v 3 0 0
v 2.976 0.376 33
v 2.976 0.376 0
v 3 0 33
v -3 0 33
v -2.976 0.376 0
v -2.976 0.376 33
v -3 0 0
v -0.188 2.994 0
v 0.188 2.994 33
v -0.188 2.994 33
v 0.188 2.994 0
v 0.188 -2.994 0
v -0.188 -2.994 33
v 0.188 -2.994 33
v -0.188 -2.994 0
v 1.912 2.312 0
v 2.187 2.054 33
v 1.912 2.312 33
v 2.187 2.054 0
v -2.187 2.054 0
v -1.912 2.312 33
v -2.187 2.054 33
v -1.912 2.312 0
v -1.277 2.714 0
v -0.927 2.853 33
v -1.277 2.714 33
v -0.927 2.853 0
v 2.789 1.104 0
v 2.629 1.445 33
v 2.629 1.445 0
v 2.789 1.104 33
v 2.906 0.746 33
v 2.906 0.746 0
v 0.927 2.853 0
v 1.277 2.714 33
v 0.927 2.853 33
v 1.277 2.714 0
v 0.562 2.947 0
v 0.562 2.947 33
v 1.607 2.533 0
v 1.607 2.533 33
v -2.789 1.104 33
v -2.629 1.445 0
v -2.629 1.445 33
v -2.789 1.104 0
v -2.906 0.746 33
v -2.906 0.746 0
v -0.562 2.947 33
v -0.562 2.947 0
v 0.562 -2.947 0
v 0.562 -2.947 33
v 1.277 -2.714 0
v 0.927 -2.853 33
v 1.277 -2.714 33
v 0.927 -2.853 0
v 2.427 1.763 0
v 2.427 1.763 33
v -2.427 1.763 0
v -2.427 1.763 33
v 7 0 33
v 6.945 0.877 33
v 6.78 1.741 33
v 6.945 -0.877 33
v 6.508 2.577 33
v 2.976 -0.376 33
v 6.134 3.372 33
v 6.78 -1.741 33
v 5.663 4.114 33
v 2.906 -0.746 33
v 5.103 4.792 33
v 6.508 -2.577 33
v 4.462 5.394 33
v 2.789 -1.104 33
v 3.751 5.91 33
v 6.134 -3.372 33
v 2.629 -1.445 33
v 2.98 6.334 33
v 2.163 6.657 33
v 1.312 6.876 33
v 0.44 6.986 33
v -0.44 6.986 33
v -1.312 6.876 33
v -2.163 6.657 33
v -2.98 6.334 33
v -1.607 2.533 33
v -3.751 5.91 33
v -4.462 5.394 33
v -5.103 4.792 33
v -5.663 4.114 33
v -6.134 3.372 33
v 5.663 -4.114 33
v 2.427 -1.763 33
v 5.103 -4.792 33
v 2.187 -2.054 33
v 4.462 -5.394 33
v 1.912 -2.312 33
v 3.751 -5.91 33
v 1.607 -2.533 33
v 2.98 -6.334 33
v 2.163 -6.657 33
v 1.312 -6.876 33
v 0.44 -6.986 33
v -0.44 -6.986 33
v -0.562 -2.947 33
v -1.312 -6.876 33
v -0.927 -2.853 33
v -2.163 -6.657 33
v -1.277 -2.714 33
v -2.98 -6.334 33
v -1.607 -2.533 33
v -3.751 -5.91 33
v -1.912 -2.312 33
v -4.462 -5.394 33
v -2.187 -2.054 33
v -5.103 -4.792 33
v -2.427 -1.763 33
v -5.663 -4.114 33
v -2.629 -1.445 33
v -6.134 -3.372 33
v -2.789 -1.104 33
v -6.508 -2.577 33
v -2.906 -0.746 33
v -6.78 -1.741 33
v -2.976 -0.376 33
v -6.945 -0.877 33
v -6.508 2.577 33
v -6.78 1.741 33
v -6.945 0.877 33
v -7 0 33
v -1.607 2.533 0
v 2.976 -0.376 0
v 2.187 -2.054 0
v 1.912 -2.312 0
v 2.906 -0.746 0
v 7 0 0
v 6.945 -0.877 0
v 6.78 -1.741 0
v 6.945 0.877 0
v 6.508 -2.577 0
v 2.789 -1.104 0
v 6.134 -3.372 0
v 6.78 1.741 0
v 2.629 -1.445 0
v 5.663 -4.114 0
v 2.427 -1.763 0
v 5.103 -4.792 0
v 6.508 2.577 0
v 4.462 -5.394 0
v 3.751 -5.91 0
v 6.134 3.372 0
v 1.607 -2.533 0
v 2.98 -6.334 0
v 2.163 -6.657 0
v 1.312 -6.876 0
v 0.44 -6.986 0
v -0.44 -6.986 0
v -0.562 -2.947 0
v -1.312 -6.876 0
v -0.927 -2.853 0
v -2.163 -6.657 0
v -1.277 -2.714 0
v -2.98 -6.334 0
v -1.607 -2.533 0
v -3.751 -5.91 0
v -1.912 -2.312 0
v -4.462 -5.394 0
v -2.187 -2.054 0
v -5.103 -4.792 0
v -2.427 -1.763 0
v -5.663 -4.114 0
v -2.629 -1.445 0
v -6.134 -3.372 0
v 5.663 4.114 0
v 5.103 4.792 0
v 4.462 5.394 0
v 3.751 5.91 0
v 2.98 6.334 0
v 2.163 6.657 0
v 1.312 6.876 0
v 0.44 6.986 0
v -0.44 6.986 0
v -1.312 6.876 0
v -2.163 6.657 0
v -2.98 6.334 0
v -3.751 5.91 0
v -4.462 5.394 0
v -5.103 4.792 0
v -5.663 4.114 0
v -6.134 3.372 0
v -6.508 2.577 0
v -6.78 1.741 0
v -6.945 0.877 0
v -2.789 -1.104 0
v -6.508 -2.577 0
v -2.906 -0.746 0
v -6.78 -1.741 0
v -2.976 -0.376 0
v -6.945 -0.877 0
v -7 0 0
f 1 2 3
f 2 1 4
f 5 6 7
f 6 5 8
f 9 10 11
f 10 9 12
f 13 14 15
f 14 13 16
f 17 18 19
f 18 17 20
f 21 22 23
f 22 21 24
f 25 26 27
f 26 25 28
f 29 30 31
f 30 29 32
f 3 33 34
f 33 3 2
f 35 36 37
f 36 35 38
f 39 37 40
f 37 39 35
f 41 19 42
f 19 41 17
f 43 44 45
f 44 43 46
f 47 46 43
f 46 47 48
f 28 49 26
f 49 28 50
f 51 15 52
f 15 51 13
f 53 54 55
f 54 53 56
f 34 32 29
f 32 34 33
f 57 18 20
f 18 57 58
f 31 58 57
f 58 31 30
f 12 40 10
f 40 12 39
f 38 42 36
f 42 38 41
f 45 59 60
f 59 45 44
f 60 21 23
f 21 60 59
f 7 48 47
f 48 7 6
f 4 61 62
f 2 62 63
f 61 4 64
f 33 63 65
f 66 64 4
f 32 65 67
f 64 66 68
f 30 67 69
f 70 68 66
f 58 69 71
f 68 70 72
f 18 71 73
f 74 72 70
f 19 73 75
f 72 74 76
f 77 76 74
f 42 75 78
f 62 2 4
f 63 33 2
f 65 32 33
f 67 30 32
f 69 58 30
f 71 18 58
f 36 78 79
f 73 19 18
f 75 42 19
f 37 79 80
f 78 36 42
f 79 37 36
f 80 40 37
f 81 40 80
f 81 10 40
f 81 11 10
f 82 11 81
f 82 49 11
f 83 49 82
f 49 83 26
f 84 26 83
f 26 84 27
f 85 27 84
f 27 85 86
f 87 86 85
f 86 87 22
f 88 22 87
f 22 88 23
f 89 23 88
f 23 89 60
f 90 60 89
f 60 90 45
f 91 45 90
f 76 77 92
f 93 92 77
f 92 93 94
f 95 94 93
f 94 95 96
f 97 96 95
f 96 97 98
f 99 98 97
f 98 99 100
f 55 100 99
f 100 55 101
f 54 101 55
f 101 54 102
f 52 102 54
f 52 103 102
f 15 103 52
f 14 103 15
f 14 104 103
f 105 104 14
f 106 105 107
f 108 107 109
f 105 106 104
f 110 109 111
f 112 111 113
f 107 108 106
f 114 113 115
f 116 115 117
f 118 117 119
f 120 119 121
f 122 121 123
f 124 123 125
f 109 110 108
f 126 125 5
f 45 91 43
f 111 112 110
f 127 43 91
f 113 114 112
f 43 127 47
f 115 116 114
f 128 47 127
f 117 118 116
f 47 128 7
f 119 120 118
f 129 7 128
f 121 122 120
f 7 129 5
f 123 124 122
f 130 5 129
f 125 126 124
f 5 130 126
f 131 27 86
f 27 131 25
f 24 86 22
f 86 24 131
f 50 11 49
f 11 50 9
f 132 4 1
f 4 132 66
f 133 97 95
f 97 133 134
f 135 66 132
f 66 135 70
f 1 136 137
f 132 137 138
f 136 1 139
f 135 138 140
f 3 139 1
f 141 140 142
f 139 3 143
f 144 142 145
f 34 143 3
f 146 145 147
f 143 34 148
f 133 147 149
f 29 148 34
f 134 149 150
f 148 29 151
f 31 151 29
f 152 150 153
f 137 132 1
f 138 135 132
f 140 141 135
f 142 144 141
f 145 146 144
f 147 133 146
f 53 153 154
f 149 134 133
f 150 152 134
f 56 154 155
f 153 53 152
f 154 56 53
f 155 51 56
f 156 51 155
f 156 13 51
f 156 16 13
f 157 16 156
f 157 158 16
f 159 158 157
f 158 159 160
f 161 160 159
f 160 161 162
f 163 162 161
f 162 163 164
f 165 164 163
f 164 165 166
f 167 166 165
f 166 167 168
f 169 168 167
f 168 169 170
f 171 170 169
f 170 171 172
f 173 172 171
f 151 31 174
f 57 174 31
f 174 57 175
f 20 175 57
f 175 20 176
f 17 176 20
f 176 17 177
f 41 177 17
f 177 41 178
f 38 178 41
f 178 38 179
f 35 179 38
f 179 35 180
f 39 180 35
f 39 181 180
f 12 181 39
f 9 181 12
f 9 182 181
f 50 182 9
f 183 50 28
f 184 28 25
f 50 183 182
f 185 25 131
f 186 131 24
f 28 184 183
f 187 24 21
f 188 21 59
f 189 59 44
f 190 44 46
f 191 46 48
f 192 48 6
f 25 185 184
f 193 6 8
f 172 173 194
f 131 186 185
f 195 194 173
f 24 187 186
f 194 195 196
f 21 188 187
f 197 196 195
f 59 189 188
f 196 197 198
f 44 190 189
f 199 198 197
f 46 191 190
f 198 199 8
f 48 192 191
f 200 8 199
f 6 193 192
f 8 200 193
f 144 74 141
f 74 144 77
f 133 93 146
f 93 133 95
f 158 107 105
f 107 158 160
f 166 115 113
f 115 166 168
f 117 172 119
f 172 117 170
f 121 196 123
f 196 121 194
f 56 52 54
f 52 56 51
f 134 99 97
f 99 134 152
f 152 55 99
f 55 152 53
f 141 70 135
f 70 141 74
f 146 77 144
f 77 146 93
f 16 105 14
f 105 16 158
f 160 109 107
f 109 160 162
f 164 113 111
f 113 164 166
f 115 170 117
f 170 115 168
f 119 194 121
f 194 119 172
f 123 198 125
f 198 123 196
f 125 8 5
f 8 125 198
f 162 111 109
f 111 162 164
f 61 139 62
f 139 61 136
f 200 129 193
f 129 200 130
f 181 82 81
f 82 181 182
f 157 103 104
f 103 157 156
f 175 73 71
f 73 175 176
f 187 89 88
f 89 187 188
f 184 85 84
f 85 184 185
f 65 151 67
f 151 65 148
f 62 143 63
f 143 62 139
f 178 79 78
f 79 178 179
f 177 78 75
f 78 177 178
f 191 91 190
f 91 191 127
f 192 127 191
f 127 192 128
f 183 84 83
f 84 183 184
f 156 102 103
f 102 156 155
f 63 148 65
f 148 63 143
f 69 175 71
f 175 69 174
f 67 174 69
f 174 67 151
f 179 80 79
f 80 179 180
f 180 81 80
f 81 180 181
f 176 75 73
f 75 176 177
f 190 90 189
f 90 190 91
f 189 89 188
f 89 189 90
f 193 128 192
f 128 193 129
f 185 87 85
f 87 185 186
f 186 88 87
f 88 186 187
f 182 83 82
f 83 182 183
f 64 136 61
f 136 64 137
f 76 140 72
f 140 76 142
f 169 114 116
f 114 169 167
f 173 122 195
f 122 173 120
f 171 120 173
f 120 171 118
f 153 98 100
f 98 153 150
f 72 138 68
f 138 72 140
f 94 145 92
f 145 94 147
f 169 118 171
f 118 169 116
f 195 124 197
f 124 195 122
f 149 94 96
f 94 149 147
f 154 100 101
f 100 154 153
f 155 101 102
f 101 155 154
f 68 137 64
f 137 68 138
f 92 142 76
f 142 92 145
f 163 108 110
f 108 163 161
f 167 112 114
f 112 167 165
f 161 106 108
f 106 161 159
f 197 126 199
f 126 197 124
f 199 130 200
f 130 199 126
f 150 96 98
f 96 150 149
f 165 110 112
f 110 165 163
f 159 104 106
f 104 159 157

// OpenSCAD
$fn = 50;


difference() {
	union() {
		cylinder(h = 33, r = 7.0000000000);
	}
	union() {
		cylinder(h = 33, r = 3.0000000000);
		cylinder(h = 33, r = 1.5000000000);
		cylinder(h = 33, r = 1.5000000000);
		cylinder(h = 33, r = 1.5000000000);
	}
}
